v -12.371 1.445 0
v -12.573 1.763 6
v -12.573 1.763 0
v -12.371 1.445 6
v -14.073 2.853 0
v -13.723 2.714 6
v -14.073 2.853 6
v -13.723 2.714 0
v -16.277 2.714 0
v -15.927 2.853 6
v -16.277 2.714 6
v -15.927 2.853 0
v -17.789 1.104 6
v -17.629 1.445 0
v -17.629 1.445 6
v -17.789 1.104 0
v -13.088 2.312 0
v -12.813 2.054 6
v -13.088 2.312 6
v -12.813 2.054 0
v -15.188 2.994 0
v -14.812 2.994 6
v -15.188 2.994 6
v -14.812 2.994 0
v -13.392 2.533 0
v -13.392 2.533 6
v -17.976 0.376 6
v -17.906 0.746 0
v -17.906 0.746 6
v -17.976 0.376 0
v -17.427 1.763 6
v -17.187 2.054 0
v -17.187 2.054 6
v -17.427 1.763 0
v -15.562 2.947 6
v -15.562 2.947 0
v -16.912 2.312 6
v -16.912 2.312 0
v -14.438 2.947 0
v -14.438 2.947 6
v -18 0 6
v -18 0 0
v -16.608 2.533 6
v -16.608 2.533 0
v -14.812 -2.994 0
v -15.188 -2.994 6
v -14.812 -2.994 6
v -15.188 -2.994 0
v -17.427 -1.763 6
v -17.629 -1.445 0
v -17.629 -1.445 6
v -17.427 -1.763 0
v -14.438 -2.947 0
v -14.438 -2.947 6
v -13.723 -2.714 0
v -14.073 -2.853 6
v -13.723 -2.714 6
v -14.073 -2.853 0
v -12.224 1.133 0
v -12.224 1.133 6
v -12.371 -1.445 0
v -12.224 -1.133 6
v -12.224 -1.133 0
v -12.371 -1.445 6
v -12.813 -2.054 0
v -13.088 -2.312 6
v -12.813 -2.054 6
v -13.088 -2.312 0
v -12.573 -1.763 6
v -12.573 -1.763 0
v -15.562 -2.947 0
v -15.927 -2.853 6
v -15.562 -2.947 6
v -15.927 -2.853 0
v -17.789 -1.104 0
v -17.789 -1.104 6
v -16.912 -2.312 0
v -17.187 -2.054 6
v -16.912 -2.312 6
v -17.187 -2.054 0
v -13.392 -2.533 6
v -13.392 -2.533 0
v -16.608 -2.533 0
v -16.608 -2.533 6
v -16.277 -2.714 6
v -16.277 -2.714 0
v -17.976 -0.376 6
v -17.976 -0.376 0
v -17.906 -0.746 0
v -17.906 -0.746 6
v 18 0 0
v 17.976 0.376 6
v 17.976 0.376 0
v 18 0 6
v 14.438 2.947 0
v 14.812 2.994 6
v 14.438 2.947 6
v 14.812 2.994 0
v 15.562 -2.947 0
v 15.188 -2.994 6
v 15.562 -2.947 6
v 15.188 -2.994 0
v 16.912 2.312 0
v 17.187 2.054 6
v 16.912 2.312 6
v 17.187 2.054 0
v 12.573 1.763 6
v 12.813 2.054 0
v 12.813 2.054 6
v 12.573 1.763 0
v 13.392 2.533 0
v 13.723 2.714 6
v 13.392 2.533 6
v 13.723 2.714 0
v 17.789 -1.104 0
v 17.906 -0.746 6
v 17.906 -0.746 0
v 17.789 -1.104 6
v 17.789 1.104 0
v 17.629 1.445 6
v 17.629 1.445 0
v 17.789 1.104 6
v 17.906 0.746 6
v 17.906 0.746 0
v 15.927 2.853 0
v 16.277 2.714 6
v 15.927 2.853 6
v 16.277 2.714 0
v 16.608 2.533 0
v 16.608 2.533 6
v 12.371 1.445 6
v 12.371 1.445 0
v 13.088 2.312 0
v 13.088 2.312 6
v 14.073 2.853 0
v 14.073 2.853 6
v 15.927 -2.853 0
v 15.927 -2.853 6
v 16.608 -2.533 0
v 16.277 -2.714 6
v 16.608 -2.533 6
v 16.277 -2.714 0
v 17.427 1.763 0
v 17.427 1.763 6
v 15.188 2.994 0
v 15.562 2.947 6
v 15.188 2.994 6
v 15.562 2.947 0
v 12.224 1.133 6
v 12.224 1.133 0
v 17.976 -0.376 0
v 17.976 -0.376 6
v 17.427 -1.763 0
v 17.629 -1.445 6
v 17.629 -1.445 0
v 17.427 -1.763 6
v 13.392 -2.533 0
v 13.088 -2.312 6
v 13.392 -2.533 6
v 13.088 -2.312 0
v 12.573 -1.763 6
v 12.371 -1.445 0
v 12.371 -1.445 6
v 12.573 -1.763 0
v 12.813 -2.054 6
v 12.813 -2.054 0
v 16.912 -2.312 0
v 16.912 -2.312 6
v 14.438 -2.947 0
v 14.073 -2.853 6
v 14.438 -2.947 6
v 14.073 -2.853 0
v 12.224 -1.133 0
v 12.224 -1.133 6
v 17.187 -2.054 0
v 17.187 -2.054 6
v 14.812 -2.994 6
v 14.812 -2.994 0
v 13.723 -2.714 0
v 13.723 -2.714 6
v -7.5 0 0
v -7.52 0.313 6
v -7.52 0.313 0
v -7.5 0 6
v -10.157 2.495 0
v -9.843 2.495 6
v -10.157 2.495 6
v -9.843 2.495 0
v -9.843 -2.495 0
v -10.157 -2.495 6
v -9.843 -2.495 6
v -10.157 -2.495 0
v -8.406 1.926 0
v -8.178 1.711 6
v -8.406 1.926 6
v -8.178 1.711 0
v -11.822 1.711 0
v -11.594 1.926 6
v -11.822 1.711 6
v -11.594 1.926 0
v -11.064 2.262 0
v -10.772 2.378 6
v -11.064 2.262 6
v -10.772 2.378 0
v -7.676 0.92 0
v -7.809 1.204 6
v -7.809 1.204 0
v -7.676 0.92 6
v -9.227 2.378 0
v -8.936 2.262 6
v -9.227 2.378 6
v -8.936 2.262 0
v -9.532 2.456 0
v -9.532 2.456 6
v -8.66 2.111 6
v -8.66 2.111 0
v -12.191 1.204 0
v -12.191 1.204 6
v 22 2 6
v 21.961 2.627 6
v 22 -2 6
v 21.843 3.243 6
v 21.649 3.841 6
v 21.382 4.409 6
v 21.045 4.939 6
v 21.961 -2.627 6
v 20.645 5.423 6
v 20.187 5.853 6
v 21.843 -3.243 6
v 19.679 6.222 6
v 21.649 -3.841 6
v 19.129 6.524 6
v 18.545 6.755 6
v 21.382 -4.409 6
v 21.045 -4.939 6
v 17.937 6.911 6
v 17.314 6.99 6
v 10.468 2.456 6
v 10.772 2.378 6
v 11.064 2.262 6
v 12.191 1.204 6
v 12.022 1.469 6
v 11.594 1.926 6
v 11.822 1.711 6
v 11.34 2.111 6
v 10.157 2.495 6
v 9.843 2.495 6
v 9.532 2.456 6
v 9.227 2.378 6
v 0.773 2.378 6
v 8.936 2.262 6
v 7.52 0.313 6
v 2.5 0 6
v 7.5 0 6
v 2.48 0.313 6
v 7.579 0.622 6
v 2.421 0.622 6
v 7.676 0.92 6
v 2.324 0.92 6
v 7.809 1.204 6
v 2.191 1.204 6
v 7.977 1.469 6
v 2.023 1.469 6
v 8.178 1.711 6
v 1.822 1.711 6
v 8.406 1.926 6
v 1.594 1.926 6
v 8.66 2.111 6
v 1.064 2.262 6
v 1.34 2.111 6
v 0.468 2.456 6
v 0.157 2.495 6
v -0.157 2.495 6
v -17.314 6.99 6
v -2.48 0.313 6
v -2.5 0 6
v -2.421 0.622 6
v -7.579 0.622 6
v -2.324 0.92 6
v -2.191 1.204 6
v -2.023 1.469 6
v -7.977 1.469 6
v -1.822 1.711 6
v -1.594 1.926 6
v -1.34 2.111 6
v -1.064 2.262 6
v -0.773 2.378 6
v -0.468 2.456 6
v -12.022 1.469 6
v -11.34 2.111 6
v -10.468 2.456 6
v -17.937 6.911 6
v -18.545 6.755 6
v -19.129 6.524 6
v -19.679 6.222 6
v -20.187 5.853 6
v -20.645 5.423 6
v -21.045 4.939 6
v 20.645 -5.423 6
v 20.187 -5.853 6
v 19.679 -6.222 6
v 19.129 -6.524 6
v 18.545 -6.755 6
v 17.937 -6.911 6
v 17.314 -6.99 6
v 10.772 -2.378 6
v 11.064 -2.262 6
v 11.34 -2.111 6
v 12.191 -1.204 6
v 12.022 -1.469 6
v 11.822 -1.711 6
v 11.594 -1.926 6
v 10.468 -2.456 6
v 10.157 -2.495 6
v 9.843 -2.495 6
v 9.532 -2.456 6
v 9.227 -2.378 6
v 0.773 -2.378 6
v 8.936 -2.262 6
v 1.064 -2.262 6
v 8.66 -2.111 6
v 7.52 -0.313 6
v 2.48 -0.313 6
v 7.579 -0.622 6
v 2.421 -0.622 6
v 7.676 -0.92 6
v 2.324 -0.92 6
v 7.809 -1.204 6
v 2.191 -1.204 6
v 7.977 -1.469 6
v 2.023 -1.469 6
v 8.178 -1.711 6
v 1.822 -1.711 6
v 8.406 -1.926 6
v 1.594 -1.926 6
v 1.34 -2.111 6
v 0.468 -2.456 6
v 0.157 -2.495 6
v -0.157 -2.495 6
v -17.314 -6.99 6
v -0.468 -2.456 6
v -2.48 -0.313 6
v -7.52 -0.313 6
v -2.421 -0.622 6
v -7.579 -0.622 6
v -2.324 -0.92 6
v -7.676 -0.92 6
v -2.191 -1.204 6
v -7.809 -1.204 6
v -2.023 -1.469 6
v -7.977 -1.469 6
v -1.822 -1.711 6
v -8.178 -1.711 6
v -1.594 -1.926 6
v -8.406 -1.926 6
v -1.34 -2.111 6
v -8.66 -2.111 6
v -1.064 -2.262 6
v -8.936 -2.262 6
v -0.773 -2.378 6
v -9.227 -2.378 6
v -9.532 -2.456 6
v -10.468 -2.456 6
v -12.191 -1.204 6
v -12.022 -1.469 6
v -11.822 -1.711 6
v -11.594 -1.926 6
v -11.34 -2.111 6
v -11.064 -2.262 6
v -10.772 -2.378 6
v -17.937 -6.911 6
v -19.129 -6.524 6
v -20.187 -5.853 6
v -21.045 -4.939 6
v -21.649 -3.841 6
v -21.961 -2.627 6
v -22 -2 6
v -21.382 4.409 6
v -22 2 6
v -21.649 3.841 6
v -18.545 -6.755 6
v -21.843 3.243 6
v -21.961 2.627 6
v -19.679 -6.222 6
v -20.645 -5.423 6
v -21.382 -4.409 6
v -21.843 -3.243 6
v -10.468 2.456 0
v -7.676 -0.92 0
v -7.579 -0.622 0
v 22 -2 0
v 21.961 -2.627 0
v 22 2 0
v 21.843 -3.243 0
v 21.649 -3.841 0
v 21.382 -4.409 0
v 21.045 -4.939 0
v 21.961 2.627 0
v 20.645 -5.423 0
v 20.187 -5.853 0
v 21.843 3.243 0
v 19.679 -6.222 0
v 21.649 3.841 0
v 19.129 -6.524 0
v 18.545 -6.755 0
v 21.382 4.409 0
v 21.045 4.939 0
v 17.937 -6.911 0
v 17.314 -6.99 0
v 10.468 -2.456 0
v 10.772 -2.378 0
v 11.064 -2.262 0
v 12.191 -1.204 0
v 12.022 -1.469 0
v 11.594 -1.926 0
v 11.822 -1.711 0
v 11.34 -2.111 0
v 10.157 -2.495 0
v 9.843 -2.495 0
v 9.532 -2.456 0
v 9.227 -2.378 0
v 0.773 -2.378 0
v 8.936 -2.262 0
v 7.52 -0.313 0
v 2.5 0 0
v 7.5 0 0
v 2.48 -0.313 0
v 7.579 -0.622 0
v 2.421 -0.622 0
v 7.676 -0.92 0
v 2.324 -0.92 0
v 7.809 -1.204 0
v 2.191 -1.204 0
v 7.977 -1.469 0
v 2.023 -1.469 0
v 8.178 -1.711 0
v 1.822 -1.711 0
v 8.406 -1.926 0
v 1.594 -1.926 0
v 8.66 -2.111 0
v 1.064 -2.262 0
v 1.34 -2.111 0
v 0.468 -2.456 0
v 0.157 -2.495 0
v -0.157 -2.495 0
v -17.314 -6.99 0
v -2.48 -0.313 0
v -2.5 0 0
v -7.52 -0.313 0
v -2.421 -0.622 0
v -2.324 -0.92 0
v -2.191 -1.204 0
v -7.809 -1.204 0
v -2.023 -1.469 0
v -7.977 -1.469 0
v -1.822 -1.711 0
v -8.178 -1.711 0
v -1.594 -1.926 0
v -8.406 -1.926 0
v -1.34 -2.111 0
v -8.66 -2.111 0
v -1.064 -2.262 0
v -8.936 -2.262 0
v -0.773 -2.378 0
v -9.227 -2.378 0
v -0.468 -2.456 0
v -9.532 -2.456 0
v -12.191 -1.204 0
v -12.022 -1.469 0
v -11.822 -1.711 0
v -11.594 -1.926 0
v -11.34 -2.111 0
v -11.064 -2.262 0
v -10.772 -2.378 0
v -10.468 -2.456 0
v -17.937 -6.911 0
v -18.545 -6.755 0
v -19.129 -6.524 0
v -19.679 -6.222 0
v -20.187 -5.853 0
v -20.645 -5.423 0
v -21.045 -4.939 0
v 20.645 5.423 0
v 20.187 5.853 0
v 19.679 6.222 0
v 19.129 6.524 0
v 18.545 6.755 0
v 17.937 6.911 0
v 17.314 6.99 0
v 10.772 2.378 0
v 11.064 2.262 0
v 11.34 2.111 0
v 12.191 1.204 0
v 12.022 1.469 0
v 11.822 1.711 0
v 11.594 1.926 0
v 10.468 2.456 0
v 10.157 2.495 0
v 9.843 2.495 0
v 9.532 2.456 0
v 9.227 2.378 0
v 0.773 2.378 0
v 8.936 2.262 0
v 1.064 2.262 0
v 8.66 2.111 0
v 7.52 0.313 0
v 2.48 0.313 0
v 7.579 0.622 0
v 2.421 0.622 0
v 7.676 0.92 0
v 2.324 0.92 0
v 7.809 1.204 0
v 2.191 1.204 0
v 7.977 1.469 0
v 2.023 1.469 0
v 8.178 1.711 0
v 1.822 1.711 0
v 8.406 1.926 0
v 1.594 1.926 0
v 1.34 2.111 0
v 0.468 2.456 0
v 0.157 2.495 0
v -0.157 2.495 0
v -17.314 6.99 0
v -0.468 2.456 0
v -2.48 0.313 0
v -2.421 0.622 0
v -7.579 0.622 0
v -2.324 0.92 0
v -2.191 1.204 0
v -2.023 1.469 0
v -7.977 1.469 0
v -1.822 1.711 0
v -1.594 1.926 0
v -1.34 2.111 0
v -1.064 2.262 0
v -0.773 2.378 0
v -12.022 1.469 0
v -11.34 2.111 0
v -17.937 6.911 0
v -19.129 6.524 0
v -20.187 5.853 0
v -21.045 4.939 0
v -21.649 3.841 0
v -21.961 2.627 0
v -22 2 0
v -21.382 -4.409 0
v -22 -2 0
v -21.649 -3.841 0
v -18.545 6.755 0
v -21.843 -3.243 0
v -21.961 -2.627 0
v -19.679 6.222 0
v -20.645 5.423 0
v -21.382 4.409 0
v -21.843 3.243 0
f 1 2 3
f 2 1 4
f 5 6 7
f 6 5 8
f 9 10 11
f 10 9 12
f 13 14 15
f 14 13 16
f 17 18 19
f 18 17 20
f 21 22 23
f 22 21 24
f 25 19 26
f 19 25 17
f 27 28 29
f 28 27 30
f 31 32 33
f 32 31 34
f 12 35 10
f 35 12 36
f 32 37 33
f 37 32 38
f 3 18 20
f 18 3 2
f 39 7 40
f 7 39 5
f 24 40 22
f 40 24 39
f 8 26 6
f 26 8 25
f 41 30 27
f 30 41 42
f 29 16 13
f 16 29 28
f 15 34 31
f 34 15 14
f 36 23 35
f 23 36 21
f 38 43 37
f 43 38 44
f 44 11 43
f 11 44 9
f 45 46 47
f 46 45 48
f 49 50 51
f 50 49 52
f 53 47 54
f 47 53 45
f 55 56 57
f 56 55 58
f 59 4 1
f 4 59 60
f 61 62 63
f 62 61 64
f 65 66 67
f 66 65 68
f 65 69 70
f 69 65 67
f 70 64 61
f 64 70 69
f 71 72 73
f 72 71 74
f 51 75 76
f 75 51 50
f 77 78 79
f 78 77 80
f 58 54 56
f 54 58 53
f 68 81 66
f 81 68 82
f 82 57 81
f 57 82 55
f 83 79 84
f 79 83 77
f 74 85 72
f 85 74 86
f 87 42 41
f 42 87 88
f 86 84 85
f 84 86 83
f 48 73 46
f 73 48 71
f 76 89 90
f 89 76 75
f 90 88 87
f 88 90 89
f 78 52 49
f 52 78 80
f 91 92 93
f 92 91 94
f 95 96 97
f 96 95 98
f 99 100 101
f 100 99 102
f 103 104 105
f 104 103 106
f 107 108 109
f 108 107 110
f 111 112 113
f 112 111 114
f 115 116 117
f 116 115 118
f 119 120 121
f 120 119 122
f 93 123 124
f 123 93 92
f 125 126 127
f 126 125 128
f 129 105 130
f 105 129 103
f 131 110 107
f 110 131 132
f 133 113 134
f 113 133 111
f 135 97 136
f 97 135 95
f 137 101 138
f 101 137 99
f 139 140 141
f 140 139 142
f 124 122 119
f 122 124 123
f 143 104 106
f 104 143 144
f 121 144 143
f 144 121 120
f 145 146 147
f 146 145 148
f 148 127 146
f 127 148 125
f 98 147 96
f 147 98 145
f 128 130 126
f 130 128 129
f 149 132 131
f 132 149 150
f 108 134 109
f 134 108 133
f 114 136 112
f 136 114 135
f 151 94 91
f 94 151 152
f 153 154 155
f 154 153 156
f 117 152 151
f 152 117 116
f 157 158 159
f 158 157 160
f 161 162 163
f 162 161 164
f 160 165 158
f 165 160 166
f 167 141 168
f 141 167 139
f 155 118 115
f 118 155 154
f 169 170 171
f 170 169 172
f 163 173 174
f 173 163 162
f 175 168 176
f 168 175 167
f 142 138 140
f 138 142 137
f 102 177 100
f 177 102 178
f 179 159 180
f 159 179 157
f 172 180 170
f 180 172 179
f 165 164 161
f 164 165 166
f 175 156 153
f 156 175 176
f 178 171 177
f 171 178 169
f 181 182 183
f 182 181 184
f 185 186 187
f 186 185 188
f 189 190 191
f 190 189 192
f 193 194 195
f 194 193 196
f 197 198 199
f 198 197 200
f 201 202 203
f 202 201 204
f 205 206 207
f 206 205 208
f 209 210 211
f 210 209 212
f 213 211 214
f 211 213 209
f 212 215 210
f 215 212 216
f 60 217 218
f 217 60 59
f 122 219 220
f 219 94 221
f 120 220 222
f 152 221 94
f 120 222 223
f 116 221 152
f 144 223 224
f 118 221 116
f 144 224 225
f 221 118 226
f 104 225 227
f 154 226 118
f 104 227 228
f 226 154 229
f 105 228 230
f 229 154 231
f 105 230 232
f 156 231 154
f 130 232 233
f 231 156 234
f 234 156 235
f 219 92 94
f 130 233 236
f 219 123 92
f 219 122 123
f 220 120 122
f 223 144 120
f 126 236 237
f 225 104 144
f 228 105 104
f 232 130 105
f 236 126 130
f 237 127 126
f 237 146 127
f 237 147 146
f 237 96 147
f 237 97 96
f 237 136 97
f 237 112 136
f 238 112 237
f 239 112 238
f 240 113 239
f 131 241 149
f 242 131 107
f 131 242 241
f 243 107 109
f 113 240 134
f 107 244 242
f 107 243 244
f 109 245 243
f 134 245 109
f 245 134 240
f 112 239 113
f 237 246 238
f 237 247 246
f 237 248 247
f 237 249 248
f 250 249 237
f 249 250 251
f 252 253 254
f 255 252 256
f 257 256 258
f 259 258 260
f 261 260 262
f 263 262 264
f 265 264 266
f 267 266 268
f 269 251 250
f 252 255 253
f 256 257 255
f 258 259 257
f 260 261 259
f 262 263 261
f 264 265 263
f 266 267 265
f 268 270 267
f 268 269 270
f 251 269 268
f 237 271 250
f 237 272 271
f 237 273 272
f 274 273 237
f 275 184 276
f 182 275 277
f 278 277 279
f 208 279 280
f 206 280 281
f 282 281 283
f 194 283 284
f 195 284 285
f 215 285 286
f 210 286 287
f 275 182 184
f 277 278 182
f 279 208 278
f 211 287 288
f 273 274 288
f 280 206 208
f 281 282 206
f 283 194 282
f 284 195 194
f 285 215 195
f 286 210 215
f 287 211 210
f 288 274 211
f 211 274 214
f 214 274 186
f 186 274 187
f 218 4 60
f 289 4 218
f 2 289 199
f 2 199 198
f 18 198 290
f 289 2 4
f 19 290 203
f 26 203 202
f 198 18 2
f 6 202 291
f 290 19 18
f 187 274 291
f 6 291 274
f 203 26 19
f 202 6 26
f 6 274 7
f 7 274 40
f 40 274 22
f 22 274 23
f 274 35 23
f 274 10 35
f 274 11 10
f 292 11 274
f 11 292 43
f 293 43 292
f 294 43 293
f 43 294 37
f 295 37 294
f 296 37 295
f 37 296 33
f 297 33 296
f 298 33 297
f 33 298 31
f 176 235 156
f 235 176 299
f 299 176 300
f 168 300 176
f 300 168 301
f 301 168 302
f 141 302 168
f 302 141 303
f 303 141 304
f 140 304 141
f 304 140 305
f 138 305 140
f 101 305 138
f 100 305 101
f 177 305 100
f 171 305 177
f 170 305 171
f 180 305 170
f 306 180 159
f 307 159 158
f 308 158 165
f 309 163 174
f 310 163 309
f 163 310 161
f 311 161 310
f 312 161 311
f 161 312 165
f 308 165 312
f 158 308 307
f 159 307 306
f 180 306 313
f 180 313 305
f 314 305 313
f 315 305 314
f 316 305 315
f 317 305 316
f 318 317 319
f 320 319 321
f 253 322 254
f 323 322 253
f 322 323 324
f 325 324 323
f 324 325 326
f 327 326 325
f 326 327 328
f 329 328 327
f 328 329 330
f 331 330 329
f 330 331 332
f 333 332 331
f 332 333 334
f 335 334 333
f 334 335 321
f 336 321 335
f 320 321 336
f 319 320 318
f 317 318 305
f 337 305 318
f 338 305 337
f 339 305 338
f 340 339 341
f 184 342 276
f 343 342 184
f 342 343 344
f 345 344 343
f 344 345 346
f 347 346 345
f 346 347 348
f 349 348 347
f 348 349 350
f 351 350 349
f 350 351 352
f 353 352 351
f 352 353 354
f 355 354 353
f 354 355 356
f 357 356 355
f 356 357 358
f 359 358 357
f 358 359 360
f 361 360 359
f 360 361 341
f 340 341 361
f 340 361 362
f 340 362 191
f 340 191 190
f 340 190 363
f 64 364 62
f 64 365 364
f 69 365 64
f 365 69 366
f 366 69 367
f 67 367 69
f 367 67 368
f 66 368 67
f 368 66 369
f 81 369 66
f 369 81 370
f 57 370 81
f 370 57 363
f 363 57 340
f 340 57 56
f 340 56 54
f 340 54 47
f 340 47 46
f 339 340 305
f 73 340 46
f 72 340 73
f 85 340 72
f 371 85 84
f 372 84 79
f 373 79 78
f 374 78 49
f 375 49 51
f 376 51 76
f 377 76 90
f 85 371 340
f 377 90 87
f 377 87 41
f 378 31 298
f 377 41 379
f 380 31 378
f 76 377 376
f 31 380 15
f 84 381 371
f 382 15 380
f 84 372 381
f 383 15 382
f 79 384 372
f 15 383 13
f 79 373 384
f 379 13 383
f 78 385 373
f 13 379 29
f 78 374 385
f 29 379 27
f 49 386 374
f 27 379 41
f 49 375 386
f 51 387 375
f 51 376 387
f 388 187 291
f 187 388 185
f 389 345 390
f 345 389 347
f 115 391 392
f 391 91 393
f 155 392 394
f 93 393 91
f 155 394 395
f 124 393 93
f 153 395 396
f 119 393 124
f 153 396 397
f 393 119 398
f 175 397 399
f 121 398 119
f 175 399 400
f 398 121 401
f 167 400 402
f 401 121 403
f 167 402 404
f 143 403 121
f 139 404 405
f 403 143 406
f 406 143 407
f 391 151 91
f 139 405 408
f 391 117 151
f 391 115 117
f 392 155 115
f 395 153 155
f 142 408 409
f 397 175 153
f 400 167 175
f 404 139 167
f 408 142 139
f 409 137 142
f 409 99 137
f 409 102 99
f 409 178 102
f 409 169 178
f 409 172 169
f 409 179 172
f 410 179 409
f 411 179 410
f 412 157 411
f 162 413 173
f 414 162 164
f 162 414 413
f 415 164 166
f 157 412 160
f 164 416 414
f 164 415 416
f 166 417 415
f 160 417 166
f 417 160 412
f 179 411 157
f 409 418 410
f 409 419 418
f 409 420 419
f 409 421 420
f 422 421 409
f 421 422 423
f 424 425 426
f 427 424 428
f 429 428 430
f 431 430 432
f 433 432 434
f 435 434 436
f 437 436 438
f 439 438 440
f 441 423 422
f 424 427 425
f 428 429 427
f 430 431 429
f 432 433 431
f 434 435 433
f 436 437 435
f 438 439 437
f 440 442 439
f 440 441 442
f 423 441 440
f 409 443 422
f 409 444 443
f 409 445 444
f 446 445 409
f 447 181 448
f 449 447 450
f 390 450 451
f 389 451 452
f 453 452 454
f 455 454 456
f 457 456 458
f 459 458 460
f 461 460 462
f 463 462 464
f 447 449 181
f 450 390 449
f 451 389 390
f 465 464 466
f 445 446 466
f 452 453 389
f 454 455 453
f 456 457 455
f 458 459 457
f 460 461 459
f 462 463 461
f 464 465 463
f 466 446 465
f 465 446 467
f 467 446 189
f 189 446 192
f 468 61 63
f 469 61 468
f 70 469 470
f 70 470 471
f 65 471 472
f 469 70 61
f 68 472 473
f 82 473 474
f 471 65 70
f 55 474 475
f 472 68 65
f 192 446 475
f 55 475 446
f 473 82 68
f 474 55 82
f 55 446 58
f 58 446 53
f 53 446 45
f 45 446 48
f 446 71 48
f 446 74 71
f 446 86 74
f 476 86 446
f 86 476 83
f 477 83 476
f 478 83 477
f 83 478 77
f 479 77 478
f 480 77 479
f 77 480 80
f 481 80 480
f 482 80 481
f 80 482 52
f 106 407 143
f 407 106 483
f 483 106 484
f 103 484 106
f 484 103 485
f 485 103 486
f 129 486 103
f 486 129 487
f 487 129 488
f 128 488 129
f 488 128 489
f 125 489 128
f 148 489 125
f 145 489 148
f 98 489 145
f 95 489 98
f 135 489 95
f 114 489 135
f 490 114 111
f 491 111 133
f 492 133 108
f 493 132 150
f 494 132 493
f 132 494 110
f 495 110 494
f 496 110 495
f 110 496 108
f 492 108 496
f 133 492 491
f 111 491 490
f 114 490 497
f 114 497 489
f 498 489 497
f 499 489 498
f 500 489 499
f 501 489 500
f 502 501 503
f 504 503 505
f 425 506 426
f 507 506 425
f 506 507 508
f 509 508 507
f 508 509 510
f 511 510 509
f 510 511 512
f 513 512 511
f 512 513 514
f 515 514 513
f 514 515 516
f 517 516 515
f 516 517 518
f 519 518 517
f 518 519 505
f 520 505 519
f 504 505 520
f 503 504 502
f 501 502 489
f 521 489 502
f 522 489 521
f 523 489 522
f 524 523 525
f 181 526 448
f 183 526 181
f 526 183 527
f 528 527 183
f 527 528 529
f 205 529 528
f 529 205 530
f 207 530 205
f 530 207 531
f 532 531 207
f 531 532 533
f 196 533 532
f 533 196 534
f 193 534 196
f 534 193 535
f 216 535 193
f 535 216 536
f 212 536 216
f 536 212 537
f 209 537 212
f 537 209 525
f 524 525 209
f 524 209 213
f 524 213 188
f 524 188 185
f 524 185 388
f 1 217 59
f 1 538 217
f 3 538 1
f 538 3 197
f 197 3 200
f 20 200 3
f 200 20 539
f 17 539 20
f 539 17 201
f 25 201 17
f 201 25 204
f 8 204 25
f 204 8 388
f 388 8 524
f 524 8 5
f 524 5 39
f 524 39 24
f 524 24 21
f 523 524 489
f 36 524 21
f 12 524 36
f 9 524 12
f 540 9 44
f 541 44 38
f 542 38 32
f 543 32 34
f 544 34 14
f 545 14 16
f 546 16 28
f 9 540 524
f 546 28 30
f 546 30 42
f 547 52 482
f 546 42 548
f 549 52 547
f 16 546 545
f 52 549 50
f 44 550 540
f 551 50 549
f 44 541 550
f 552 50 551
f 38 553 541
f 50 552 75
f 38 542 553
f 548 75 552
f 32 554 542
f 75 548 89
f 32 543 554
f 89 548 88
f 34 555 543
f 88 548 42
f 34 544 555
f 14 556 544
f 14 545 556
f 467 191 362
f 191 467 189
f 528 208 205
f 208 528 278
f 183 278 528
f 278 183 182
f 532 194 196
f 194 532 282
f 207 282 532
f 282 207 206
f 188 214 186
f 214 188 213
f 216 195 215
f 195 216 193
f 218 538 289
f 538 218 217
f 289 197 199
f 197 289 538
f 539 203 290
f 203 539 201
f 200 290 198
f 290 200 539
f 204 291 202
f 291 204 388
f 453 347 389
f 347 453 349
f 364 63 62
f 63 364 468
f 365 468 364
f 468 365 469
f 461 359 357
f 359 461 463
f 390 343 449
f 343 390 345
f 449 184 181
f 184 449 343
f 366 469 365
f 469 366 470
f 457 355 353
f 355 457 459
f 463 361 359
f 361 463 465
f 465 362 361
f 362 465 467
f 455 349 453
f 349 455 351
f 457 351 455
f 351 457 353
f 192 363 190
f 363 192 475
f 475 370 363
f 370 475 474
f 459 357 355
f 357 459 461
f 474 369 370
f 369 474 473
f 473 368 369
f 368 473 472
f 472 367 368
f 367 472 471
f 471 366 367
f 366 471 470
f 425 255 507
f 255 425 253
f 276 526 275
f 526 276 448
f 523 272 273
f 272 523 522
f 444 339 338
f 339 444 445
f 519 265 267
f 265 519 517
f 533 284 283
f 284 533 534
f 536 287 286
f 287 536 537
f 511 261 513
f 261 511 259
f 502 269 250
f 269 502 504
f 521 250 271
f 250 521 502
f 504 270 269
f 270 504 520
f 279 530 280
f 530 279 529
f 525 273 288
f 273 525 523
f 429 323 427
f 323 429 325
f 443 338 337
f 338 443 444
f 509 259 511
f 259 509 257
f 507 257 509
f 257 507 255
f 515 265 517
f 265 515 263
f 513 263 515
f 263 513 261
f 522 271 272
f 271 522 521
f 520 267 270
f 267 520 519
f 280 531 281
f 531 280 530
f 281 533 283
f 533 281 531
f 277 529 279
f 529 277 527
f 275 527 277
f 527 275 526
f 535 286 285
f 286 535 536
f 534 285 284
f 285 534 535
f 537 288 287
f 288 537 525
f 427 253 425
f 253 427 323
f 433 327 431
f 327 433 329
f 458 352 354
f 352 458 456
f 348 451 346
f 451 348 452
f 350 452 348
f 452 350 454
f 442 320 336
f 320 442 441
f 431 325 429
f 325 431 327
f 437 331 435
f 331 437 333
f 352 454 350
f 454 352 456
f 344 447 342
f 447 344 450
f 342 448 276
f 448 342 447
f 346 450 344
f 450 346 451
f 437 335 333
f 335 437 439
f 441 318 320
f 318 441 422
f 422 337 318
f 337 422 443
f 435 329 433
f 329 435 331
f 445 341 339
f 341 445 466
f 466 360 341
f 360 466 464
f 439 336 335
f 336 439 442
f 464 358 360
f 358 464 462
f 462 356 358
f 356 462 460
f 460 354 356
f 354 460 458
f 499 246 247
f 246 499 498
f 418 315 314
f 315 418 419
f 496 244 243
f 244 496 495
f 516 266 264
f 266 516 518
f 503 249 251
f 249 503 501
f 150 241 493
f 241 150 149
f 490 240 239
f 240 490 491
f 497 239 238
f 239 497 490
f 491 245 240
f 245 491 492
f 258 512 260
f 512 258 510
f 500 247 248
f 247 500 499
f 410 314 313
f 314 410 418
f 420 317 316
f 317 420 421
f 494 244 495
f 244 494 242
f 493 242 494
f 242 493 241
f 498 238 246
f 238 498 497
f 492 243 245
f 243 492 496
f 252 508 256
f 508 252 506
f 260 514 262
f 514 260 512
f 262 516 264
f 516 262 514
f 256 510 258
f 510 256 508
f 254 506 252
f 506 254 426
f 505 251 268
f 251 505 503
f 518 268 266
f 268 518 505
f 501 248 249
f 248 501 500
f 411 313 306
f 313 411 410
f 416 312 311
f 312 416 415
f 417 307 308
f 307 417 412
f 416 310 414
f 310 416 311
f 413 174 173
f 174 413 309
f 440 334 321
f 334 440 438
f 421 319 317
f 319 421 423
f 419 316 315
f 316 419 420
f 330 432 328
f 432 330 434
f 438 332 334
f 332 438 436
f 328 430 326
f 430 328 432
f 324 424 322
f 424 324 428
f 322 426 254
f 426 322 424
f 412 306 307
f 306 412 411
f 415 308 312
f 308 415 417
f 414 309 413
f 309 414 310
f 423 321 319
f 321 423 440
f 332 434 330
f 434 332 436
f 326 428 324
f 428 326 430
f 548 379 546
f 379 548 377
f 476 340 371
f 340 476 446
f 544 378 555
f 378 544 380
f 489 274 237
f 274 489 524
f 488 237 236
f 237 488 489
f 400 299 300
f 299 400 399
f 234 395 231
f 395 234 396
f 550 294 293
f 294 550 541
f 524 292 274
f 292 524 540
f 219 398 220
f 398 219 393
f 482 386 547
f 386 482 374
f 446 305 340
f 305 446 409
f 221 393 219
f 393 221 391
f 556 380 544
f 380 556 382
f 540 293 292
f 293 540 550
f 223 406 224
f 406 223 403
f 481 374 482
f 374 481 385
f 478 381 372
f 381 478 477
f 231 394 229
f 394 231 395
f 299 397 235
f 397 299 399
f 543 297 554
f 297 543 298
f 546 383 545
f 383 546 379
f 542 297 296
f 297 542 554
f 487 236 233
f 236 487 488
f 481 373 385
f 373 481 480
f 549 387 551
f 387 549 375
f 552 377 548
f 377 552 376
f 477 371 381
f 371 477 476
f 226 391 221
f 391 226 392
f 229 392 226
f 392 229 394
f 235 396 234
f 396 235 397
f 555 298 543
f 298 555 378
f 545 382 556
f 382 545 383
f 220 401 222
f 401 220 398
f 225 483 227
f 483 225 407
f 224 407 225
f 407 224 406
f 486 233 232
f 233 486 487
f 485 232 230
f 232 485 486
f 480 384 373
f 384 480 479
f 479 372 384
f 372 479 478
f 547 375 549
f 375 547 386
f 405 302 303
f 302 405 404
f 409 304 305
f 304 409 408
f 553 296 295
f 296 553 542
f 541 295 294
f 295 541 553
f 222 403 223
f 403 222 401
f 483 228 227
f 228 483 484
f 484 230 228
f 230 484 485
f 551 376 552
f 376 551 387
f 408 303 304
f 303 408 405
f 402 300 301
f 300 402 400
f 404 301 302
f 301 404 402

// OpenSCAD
$fn = 50;


difference() {
	union() {
		hull() {
			translate(v = [-17.0000000000, 2.0000000000, 0]) {
				cylinder(h = 6, r = 5);
			}
			translate(v = [17.0000000000, 2.0000000000, 0]) {
				cylinder(h = 6, r = 5);
			}
			translate(v = [-17.0000000000, -2.0000000000, 0]) {
				cylinder(h = 6, r = 5);
			}
			translate(v = [17.0000000000, -2.0000000000, 0]) {
				cylinder(h = 6, r = 5);
			}
		}
	}
	union() {
		#translate(v = [-15.0000000000, 0.0000000000, -100.0000000000]) {
			cylinder(h = 200, r = 3.0000000000);
		}
		#translate(v = [-15.0000000000, 0.0000000000, -100.0000000000]) {
			cylinder(h = 200, r = 3.0000000000);
		}
		#translate(v = [15.0000000000, 0.0000000000, -100.0000000000]) {
			cylinder(h = 200, r = 3.0000000000);
		}
		#translate(v = [15.0000000000, 0.0000000000, -100.0000000000]) {
			cylinder(h = 200, r = 3.0000000000);
		}
		#translate(v = [-10.0000000000, 0, 0]) {
			cylinder(h = 6, r = 2.5000000000);
		}
		#cylinder(h = 6, r = 2.5000000000);
		#translate(v = [10.0000000000, 0, 0]) {
			cylinder(h = 6, r = 2.5000000000);
		}
	}
}
